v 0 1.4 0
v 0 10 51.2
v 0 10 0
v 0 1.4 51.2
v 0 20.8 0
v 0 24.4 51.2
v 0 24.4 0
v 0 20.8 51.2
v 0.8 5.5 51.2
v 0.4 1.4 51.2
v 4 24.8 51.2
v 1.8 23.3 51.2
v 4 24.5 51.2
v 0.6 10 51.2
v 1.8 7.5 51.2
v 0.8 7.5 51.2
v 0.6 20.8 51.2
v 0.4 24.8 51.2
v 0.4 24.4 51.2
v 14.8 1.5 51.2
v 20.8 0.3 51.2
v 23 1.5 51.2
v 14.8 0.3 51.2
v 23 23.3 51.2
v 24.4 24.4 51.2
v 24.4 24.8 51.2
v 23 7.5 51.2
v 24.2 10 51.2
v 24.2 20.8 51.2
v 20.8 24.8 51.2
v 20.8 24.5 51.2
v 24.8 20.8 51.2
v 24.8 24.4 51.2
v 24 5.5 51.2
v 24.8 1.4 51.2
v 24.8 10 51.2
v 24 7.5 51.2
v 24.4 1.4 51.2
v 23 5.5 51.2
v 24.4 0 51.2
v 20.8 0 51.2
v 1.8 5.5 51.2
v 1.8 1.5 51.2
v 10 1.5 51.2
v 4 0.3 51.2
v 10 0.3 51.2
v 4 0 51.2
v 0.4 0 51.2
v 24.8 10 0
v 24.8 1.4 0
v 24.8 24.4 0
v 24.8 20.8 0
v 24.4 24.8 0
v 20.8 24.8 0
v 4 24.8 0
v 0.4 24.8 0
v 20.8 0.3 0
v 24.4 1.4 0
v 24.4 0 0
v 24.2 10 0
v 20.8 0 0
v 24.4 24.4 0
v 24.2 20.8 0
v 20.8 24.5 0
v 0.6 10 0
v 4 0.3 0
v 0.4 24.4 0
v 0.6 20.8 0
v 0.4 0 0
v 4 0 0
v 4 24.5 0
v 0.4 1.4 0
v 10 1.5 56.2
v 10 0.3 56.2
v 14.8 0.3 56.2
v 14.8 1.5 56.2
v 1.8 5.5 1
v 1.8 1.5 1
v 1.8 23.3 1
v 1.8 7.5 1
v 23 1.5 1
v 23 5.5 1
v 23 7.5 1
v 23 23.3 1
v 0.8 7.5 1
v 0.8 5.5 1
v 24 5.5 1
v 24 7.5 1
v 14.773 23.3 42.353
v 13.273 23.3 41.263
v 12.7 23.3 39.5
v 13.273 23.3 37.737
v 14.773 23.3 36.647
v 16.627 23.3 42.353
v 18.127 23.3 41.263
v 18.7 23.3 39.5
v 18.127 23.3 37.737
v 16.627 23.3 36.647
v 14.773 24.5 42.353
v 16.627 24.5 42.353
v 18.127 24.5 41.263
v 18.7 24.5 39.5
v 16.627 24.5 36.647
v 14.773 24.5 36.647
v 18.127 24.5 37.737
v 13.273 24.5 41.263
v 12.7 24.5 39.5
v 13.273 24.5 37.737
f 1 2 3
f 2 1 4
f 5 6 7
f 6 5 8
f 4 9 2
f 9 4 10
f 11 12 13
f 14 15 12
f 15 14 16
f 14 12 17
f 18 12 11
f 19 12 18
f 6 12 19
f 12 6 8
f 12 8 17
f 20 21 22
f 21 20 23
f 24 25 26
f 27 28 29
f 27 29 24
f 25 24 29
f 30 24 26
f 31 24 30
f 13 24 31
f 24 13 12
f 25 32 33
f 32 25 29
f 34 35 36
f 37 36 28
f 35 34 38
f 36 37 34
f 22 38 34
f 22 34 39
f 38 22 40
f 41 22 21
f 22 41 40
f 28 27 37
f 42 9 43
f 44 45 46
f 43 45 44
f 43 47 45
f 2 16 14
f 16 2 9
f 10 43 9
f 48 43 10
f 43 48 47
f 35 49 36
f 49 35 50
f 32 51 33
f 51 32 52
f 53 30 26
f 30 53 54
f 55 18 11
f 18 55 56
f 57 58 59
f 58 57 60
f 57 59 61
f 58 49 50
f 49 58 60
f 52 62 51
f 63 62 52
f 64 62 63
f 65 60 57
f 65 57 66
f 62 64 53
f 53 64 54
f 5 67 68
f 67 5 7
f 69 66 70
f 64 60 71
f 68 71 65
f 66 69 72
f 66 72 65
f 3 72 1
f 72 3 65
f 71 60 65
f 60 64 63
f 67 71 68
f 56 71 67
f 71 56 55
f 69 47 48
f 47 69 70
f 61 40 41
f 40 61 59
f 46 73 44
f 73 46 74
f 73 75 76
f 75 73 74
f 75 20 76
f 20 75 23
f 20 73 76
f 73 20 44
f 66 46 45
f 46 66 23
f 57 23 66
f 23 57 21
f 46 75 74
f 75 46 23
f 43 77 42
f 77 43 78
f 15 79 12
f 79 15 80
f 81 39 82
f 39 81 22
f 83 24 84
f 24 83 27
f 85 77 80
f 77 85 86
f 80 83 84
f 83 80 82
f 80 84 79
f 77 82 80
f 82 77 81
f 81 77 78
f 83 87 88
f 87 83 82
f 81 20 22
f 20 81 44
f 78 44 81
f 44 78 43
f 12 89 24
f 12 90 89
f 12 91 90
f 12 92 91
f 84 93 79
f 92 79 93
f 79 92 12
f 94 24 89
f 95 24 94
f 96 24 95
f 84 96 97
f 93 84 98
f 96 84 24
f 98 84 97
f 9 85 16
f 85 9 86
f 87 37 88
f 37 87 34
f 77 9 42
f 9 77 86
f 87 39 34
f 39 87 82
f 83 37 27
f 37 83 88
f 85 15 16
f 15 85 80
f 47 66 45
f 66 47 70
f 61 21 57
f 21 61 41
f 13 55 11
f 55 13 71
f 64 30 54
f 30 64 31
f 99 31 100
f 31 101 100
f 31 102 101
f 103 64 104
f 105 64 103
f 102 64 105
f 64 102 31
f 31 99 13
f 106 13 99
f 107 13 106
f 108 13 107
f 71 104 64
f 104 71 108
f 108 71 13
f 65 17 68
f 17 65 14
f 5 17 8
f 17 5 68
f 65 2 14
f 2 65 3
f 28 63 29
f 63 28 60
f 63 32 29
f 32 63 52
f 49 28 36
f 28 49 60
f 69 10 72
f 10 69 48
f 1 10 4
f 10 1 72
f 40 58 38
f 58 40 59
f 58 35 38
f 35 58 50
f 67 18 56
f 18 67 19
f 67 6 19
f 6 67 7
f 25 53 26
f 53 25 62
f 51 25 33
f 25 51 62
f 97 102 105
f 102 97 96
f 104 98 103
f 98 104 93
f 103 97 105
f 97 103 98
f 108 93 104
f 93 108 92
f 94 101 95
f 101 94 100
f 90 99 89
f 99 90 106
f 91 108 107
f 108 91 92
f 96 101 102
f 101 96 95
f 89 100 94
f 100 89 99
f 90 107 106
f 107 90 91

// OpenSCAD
difference() {
    union() {
        cube([24.8,24.8,51.2]);
        translate([10,0.3,51.2]) cube([4.8,1.2,5]);
    }
    translate([1.8,1.5,1]) cube([21.2,21.8,50.2]);
    translate([0.8,5.5,1]) cube([23.2,2,50.2]);
    
    translate([4,0,0]) cube([16.8,0.3,61.2]);
    translate([4,24.5,0]) cube([16.8,0.3,51.2]);
    translate([0,10,0]) cube([0.6,10.8,51.2]);
    translate([24.2,10,0]) cube([0.6,10.8,51.2]);
    
    translate([0,0,0]) cube([0.4,1.4,51.2]);
    translate([24.4,0,0]) cube([0.4,1.4,51.2]);
    translate([0,24.4,0]) cube([0.4,0.4,51.2]);
    translate([24.4,24.4,0]) cube([0.4,0.4,51.2]);
    
    
    //24.8-(8.3+0.8)-2.5,39.5
//    translate([13.2,10,37]) cube([5,50,5]);
            translate([15.7,10,39.5]) rotate([-90,0,0]) cylinder(100,3,3);
}
